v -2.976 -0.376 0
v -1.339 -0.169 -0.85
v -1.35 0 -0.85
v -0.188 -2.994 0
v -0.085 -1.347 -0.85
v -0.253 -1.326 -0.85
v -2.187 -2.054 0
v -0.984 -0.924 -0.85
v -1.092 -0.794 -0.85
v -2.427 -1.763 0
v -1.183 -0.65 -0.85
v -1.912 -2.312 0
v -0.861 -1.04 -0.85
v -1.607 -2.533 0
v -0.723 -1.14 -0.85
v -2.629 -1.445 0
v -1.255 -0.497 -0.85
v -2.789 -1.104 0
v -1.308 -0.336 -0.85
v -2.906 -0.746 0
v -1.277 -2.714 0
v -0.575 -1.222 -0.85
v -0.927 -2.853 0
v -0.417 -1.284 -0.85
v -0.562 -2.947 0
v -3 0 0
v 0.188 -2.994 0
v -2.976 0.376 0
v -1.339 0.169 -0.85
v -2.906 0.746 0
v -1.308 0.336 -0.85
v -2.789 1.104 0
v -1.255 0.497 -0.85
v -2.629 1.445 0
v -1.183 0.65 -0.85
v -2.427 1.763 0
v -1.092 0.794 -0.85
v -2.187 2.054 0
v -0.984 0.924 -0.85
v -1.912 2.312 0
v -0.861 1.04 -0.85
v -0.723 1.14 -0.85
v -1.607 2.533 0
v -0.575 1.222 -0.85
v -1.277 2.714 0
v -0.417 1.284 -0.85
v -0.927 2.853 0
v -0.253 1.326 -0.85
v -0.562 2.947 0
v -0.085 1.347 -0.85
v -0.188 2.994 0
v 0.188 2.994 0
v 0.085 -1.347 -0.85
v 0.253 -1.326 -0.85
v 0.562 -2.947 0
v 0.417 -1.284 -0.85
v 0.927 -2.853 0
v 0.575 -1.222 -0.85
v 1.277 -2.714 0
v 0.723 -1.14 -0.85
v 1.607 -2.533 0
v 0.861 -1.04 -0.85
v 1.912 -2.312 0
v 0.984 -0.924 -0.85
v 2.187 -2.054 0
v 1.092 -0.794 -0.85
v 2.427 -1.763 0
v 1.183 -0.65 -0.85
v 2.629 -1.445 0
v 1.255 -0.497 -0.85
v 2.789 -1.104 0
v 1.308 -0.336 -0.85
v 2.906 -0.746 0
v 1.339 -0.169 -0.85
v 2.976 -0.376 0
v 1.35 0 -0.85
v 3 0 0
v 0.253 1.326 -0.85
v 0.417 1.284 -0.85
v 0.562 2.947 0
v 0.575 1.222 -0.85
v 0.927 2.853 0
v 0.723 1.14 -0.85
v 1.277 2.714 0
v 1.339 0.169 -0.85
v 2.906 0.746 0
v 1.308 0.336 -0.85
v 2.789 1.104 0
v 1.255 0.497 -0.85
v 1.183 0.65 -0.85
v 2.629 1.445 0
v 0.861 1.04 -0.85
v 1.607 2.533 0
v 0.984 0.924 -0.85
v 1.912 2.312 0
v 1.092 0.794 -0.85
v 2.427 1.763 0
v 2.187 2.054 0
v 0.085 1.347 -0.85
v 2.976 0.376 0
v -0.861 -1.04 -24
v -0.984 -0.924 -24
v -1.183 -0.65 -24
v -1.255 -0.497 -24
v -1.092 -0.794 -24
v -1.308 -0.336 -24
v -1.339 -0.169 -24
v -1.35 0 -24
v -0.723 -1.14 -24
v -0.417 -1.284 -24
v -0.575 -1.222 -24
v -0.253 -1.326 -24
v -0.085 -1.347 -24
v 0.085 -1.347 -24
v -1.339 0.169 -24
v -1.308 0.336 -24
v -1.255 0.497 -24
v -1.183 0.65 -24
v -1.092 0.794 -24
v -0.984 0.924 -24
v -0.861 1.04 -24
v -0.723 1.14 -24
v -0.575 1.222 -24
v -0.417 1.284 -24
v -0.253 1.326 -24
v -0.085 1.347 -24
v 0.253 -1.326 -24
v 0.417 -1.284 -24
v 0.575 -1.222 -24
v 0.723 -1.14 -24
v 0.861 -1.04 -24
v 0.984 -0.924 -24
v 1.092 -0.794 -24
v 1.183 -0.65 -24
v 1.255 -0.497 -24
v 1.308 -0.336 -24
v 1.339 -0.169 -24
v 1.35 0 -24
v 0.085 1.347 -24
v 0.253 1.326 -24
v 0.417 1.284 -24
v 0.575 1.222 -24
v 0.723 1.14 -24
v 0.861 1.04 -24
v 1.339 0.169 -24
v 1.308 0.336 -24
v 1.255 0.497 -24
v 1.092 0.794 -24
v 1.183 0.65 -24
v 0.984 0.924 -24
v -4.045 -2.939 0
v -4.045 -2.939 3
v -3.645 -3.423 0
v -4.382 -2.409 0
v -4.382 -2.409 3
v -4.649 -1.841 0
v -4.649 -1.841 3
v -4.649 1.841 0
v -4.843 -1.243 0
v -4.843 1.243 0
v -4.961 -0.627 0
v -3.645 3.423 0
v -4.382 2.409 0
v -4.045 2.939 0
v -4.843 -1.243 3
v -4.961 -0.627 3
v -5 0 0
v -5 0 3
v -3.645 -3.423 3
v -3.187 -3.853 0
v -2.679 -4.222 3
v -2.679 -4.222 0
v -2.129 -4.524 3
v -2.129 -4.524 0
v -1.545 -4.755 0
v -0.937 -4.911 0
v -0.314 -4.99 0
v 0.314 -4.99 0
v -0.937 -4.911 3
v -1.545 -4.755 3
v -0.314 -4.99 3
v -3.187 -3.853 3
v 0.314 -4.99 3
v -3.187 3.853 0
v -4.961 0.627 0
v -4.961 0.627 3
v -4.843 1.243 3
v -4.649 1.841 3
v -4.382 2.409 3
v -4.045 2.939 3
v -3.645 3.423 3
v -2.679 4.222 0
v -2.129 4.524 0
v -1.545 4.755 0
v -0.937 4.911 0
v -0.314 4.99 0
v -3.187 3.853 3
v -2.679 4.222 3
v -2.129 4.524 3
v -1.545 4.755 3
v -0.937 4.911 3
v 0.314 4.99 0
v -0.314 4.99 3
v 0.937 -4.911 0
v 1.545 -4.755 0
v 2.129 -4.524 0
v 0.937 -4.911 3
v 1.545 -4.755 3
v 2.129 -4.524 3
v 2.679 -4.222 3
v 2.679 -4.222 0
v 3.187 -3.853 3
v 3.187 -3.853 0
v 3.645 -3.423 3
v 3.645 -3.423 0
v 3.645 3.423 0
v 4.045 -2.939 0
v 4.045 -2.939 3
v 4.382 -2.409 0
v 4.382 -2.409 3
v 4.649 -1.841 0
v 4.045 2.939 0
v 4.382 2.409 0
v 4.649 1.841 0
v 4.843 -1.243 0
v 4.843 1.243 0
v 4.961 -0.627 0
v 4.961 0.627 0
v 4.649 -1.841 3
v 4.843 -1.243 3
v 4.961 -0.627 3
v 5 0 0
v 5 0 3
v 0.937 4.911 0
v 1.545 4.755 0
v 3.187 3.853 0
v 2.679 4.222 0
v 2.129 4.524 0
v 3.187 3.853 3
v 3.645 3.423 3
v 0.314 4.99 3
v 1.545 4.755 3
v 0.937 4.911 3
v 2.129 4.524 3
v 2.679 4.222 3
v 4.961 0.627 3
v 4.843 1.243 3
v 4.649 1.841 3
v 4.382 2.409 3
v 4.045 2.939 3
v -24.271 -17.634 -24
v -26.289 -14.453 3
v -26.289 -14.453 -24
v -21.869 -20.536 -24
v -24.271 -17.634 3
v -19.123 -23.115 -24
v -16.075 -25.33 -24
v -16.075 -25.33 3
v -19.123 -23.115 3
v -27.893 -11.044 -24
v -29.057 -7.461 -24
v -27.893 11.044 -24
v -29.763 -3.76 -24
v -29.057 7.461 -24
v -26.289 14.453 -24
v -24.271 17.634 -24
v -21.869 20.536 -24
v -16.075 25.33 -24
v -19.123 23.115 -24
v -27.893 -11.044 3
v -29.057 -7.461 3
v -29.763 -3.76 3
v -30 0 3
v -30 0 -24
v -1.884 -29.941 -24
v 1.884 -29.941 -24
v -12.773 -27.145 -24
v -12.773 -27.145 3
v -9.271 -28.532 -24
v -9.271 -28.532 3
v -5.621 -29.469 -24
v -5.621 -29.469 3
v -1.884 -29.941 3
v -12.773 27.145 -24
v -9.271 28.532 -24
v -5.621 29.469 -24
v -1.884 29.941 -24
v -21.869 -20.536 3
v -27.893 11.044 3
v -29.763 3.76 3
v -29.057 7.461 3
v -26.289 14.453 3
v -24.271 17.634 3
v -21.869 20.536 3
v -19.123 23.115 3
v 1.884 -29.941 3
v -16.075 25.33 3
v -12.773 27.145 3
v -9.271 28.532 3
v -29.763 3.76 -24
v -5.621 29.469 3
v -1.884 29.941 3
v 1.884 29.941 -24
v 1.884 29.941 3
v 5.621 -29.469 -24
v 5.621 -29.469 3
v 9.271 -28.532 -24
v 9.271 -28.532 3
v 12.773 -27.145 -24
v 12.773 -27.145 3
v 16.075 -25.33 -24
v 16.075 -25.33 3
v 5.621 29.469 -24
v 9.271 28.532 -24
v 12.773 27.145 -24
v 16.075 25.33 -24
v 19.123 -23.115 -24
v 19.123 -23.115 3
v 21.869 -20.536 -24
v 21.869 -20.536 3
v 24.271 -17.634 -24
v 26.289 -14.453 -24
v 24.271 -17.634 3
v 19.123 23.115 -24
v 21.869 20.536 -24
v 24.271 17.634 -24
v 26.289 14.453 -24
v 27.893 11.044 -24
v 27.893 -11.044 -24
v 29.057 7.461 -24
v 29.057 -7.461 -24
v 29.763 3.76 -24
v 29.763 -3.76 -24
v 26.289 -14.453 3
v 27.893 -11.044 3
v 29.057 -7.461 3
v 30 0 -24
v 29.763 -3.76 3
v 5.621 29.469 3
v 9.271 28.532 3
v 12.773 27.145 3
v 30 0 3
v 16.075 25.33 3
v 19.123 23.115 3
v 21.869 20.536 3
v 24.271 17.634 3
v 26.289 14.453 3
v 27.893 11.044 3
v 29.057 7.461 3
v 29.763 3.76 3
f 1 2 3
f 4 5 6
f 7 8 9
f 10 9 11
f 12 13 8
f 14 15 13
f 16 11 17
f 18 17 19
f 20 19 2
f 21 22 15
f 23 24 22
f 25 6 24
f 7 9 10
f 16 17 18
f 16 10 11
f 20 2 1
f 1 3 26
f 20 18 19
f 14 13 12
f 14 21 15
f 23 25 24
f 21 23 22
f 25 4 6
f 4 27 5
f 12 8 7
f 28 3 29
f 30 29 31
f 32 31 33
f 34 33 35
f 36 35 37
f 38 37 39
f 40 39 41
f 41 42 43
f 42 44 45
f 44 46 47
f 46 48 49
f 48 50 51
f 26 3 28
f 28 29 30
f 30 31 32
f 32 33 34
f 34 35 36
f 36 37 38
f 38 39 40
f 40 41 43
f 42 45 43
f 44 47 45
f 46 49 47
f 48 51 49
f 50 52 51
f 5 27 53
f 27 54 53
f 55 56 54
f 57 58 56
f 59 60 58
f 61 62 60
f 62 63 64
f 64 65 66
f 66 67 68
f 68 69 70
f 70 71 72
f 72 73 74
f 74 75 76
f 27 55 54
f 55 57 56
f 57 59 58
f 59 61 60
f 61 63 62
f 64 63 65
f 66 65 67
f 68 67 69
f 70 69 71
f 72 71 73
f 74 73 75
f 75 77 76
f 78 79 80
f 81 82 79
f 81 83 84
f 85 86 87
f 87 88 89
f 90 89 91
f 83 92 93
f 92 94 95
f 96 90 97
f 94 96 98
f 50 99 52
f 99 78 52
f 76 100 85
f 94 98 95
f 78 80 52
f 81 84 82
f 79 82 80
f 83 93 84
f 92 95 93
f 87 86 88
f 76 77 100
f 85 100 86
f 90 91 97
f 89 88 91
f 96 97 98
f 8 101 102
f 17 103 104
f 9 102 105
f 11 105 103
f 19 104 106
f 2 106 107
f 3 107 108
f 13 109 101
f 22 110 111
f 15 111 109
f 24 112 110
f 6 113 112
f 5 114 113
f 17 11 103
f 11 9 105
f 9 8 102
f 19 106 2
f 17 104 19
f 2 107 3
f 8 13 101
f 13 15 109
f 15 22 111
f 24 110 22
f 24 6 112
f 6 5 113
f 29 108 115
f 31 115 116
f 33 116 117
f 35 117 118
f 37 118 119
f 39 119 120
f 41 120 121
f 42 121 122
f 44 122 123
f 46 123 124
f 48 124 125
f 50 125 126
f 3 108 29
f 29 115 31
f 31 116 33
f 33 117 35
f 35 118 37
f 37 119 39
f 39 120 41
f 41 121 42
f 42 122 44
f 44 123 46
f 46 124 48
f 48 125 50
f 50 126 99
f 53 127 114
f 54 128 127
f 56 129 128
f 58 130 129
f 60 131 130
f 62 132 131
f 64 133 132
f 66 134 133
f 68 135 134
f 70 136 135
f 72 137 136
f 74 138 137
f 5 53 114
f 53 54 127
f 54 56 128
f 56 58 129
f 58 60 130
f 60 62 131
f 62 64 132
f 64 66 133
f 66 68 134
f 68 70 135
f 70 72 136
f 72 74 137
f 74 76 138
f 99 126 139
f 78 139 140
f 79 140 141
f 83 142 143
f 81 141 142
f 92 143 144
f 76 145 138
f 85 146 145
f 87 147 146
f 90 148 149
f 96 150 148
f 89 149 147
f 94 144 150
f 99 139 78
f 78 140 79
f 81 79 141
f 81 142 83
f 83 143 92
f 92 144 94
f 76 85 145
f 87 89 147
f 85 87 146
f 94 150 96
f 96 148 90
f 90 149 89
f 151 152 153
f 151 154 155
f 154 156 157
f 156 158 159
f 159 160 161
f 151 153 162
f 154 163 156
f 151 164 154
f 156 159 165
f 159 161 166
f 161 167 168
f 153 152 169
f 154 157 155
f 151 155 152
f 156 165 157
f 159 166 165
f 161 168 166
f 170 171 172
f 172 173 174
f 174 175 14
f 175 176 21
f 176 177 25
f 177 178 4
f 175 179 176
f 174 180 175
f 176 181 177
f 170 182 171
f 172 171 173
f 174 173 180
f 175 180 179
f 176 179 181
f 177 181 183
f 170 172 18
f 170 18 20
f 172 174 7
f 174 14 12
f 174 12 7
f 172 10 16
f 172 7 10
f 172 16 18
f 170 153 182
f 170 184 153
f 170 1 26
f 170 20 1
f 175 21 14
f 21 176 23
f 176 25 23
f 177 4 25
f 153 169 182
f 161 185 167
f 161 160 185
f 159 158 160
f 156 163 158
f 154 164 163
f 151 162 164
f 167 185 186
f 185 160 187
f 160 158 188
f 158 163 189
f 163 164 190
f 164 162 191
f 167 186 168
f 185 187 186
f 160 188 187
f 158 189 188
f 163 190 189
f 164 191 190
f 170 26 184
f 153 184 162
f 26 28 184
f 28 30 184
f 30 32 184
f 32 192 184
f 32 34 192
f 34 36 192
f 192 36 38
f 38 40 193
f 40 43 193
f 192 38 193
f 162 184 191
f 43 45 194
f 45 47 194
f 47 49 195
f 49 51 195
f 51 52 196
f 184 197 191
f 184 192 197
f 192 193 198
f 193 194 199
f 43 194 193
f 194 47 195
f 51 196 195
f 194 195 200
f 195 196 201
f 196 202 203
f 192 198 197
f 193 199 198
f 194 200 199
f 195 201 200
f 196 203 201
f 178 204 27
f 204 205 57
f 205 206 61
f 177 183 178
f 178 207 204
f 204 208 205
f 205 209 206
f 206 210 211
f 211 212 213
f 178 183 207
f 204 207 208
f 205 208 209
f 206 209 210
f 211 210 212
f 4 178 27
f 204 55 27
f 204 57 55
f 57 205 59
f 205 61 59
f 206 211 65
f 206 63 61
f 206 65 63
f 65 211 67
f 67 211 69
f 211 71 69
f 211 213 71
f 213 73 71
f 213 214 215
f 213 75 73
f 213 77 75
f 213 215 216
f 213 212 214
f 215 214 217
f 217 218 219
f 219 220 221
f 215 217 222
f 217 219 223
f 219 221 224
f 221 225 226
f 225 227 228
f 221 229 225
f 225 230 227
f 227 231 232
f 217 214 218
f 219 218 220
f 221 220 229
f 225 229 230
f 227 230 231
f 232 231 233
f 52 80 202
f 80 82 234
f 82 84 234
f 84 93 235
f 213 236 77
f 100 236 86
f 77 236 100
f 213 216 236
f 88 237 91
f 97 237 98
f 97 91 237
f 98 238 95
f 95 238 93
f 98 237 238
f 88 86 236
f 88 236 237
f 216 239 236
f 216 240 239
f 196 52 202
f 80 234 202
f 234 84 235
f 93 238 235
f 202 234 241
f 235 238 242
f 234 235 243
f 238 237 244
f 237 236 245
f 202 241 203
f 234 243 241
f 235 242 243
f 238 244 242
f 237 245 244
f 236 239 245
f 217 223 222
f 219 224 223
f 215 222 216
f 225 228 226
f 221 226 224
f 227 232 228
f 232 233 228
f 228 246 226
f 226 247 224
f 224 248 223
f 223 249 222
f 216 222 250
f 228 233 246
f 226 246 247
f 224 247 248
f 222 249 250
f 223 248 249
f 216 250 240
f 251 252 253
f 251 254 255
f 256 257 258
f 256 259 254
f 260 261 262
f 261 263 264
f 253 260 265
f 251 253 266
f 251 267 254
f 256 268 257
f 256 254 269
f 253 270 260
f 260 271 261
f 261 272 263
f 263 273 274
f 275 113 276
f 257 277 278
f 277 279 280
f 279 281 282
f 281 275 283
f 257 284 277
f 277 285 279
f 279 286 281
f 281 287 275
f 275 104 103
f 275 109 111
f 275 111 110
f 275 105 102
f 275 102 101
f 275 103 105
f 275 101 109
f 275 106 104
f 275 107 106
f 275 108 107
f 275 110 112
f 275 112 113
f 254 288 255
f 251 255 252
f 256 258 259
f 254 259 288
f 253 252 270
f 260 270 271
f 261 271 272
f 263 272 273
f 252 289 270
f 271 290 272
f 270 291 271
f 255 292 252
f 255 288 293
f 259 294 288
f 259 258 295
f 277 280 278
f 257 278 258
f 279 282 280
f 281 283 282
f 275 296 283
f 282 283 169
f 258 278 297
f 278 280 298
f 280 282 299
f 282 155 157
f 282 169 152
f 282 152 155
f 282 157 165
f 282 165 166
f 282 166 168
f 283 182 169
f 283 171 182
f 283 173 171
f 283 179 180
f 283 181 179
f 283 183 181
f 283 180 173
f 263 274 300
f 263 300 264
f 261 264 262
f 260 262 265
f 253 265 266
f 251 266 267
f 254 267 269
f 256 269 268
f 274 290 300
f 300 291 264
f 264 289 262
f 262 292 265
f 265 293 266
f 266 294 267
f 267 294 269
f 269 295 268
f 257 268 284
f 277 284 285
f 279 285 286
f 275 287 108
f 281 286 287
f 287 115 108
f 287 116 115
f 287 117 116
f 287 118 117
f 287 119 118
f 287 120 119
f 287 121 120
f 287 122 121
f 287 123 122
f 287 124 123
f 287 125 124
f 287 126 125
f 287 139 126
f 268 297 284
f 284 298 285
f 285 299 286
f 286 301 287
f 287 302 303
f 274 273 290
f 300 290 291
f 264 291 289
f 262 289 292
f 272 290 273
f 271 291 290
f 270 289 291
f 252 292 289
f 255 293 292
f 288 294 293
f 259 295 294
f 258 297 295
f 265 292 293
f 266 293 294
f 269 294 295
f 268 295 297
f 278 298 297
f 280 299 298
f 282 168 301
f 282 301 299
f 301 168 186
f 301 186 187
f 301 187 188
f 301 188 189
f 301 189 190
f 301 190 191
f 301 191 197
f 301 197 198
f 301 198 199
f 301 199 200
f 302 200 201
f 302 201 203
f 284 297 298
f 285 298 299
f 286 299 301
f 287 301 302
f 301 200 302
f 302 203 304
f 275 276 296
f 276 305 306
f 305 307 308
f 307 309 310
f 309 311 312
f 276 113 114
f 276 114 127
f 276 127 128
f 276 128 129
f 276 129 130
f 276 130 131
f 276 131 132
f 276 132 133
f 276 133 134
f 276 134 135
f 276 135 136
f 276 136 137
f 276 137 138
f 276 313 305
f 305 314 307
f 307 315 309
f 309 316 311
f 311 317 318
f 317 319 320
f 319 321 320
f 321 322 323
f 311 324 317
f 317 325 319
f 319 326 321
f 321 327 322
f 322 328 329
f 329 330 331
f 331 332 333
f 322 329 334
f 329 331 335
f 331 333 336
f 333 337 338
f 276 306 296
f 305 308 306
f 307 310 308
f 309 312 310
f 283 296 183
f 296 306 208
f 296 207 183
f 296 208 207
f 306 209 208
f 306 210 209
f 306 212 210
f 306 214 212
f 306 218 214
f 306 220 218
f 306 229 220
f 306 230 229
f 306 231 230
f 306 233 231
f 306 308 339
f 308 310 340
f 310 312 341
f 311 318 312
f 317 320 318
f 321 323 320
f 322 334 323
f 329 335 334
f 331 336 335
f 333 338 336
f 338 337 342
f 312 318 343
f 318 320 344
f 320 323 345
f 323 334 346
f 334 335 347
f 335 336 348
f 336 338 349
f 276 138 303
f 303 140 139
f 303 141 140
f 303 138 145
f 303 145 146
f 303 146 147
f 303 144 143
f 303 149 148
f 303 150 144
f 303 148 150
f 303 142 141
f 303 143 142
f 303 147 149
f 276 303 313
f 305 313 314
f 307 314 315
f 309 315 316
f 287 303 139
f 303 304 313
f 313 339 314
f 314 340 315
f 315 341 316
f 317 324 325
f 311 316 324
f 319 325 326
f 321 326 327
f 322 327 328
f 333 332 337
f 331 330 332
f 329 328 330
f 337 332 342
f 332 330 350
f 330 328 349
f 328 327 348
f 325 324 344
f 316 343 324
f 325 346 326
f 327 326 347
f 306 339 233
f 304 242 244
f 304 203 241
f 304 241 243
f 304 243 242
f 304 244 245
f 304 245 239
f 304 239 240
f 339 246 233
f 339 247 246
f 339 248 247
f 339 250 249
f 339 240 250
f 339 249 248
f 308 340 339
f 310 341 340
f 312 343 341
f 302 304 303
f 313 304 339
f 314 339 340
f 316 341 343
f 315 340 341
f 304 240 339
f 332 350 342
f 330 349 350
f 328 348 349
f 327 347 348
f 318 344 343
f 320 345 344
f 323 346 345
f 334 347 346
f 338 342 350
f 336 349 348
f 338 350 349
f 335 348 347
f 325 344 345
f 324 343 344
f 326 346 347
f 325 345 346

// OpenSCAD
$fn = 50;

difference() {
	union() {
		translate(v = [0, 0, -24.0]) {
			cylinder(h = 27, r = 30.0);
		}
	}
	union() {
		translate(v = [0, 0, 0]) {
			rotate(a = [0, 0, 0]) {
				difference() {
					union() {
						translate(v = [0, 0, -27.0]) {
							cylinder(h = 27, r = 1.0);
						}
						translate(v = [0, 0, -0.85]) {
							cylinder(h = 0.85, r1 = 1.35, r2 = 3.0);
						}
						translate(v = [0, 0, -27.0]) {
							cylinder(h = 27, r = 1.35);
						}
						translate(v = [0, 0, -27.0]) {
							cylinder(h = 27, r = 1.0);
						}
					}
					union();
				}
			}
		}
		#cylinder(h = 3, r = 5.0);
	}
}
